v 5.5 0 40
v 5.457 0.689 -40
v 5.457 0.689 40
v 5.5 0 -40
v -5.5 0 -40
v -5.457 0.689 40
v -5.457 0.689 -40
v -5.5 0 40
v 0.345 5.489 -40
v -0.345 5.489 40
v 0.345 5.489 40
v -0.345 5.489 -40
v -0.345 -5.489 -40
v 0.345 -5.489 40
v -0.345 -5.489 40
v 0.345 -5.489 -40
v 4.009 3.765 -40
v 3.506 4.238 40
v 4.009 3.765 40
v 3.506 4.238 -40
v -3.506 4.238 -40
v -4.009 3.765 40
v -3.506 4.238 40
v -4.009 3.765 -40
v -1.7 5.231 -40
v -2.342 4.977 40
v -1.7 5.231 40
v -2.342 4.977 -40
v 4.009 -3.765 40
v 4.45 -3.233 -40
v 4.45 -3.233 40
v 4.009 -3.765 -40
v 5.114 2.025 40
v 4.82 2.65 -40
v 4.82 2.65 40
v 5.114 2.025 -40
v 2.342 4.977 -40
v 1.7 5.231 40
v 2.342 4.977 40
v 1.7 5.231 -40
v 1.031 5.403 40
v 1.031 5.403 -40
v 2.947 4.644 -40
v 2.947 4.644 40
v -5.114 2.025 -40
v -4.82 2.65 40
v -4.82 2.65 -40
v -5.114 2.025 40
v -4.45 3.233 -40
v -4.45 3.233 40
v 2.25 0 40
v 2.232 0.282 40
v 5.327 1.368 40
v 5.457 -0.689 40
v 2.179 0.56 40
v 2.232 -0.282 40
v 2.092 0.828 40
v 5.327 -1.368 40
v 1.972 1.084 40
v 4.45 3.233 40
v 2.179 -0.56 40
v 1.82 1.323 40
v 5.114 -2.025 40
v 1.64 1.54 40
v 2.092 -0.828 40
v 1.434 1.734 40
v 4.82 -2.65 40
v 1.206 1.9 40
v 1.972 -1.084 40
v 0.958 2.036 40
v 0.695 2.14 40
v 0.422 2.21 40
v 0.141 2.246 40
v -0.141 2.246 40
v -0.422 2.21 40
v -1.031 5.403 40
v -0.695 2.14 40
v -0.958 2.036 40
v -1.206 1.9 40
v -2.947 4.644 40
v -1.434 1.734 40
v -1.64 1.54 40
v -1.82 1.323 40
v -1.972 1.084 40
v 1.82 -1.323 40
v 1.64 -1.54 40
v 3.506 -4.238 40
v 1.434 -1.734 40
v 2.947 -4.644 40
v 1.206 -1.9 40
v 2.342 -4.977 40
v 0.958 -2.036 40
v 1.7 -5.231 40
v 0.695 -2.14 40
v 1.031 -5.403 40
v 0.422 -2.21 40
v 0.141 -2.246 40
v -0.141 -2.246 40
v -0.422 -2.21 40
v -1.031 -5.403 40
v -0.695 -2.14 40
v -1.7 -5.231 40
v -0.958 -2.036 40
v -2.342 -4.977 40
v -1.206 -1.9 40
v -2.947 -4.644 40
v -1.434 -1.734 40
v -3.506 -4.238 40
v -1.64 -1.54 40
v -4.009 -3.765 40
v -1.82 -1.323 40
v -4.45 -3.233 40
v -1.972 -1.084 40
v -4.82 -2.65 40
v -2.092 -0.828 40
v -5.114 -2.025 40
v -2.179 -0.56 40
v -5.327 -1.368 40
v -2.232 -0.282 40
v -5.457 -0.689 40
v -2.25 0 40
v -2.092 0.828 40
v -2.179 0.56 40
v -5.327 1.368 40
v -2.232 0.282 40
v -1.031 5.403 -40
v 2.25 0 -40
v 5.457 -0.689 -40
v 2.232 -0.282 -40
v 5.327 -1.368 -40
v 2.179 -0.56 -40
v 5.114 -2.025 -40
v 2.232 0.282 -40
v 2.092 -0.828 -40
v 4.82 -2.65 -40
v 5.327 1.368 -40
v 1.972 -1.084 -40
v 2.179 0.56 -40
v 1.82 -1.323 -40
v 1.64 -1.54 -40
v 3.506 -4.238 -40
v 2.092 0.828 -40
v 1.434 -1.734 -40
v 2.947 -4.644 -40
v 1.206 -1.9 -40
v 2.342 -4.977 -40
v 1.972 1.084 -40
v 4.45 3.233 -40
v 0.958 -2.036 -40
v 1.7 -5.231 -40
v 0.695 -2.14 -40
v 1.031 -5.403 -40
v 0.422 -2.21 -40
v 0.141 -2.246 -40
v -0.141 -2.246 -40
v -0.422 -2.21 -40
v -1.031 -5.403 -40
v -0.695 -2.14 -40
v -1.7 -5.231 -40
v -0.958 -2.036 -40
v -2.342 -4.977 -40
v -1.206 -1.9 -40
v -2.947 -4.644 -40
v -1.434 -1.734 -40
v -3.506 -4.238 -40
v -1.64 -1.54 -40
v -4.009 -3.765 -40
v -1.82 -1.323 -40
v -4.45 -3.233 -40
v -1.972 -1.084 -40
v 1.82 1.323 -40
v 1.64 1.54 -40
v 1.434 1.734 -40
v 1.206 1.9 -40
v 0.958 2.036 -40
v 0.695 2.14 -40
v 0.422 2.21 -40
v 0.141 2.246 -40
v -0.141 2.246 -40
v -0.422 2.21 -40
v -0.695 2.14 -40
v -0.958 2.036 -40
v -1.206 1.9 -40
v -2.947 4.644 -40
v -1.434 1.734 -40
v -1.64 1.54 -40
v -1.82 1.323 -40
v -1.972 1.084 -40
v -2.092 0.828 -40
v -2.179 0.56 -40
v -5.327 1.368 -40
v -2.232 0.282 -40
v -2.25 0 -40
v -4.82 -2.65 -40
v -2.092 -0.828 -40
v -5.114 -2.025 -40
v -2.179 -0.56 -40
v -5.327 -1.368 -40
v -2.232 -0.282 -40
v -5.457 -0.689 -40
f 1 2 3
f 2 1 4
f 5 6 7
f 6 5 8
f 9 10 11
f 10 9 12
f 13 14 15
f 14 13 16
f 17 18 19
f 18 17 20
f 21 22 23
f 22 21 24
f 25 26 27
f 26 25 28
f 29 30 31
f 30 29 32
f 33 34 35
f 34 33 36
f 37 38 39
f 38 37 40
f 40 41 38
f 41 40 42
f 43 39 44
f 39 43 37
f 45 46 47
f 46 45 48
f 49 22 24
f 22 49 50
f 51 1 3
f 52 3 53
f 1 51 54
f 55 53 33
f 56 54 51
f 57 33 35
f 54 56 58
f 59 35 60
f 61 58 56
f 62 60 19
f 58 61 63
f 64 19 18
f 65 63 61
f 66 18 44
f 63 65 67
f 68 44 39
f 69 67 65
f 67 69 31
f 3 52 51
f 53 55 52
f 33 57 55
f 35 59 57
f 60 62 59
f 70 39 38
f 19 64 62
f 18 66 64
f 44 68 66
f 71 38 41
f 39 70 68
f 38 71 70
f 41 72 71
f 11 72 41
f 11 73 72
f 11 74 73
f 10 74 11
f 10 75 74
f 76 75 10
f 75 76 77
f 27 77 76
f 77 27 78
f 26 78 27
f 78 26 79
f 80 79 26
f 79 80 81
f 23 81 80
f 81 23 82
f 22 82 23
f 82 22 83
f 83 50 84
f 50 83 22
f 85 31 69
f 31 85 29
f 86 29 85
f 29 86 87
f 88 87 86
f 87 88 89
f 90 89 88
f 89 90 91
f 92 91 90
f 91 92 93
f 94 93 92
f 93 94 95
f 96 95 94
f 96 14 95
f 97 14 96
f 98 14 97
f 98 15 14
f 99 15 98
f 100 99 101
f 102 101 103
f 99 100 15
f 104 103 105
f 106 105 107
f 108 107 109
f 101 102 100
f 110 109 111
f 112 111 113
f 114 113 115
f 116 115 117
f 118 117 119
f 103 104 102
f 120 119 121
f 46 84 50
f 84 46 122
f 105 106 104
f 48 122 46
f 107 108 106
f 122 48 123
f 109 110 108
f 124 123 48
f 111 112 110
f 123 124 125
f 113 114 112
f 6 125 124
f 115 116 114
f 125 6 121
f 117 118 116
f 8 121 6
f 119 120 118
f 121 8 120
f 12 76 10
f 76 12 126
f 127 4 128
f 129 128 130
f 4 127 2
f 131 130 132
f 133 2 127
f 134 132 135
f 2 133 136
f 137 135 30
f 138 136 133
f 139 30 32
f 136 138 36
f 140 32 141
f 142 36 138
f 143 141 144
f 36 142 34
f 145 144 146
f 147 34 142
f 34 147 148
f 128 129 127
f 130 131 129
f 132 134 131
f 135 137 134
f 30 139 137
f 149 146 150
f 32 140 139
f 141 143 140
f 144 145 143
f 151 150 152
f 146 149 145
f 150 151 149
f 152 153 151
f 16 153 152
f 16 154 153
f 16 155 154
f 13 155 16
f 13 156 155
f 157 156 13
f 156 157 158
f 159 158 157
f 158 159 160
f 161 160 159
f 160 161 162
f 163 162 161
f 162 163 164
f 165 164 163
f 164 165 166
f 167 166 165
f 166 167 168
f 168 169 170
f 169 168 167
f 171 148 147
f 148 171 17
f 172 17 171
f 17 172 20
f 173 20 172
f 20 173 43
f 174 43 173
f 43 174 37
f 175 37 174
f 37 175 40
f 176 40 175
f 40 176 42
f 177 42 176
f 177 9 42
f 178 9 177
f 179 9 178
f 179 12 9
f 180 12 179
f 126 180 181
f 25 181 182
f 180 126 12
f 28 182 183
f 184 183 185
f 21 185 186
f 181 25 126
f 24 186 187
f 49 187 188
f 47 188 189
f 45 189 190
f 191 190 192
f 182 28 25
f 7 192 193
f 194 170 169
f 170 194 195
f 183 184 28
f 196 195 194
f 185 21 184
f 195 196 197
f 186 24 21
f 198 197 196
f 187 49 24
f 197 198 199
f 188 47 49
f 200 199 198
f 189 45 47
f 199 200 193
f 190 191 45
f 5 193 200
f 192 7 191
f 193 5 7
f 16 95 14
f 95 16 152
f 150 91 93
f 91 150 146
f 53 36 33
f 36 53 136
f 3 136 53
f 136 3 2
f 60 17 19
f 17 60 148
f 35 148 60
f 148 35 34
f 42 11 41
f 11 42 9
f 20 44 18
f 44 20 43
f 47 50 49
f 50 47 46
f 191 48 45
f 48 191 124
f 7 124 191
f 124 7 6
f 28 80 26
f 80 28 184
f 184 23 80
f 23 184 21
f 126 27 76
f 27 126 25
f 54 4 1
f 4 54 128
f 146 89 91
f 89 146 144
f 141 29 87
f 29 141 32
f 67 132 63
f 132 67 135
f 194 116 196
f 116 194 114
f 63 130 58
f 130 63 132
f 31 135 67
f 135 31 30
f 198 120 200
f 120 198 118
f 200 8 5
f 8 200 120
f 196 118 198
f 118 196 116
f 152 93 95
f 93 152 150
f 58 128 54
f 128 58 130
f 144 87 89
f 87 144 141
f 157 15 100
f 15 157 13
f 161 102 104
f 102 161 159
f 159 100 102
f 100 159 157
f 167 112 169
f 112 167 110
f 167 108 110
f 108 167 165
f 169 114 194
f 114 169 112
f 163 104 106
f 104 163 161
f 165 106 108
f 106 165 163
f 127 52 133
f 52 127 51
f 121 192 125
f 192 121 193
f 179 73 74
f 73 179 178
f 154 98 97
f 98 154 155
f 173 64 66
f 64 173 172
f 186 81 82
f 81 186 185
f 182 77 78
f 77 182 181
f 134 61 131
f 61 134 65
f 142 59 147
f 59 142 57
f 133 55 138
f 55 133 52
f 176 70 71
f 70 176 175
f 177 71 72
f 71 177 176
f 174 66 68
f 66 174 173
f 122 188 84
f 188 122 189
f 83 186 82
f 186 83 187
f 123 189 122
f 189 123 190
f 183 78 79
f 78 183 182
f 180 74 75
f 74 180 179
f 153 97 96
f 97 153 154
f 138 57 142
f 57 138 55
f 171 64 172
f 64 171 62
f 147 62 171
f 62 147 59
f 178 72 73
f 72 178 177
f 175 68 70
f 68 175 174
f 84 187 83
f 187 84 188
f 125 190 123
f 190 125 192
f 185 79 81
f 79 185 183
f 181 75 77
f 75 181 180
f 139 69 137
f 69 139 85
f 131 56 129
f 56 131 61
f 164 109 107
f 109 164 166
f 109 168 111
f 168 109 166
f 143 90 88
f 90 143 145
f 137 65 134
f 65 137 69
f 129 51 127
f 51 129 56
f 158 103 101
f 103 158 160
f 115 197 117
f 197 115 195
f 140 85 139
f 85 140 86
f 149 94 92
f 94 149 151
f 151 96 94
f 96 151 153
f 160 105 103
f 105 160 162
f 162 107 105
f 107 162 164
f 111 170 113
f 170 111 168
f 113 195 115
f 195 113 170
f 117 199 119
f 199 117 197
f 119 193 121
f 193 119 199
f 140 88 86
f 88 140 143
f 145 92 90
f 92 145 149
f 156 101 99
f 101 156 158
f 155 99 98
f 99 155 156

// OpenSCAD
$fn = 50;


difference() {
	union() {
		translate(v = [0, 0, -40.0000000000]) {
			cylinder(h = 80, r = 5.5000000000);
		}
	}
	union() {
		translate(v = [0, 0, -100.0000000000]) {
			cylinder(h = 200, r = 2.2500000000);
		}
	}
}
